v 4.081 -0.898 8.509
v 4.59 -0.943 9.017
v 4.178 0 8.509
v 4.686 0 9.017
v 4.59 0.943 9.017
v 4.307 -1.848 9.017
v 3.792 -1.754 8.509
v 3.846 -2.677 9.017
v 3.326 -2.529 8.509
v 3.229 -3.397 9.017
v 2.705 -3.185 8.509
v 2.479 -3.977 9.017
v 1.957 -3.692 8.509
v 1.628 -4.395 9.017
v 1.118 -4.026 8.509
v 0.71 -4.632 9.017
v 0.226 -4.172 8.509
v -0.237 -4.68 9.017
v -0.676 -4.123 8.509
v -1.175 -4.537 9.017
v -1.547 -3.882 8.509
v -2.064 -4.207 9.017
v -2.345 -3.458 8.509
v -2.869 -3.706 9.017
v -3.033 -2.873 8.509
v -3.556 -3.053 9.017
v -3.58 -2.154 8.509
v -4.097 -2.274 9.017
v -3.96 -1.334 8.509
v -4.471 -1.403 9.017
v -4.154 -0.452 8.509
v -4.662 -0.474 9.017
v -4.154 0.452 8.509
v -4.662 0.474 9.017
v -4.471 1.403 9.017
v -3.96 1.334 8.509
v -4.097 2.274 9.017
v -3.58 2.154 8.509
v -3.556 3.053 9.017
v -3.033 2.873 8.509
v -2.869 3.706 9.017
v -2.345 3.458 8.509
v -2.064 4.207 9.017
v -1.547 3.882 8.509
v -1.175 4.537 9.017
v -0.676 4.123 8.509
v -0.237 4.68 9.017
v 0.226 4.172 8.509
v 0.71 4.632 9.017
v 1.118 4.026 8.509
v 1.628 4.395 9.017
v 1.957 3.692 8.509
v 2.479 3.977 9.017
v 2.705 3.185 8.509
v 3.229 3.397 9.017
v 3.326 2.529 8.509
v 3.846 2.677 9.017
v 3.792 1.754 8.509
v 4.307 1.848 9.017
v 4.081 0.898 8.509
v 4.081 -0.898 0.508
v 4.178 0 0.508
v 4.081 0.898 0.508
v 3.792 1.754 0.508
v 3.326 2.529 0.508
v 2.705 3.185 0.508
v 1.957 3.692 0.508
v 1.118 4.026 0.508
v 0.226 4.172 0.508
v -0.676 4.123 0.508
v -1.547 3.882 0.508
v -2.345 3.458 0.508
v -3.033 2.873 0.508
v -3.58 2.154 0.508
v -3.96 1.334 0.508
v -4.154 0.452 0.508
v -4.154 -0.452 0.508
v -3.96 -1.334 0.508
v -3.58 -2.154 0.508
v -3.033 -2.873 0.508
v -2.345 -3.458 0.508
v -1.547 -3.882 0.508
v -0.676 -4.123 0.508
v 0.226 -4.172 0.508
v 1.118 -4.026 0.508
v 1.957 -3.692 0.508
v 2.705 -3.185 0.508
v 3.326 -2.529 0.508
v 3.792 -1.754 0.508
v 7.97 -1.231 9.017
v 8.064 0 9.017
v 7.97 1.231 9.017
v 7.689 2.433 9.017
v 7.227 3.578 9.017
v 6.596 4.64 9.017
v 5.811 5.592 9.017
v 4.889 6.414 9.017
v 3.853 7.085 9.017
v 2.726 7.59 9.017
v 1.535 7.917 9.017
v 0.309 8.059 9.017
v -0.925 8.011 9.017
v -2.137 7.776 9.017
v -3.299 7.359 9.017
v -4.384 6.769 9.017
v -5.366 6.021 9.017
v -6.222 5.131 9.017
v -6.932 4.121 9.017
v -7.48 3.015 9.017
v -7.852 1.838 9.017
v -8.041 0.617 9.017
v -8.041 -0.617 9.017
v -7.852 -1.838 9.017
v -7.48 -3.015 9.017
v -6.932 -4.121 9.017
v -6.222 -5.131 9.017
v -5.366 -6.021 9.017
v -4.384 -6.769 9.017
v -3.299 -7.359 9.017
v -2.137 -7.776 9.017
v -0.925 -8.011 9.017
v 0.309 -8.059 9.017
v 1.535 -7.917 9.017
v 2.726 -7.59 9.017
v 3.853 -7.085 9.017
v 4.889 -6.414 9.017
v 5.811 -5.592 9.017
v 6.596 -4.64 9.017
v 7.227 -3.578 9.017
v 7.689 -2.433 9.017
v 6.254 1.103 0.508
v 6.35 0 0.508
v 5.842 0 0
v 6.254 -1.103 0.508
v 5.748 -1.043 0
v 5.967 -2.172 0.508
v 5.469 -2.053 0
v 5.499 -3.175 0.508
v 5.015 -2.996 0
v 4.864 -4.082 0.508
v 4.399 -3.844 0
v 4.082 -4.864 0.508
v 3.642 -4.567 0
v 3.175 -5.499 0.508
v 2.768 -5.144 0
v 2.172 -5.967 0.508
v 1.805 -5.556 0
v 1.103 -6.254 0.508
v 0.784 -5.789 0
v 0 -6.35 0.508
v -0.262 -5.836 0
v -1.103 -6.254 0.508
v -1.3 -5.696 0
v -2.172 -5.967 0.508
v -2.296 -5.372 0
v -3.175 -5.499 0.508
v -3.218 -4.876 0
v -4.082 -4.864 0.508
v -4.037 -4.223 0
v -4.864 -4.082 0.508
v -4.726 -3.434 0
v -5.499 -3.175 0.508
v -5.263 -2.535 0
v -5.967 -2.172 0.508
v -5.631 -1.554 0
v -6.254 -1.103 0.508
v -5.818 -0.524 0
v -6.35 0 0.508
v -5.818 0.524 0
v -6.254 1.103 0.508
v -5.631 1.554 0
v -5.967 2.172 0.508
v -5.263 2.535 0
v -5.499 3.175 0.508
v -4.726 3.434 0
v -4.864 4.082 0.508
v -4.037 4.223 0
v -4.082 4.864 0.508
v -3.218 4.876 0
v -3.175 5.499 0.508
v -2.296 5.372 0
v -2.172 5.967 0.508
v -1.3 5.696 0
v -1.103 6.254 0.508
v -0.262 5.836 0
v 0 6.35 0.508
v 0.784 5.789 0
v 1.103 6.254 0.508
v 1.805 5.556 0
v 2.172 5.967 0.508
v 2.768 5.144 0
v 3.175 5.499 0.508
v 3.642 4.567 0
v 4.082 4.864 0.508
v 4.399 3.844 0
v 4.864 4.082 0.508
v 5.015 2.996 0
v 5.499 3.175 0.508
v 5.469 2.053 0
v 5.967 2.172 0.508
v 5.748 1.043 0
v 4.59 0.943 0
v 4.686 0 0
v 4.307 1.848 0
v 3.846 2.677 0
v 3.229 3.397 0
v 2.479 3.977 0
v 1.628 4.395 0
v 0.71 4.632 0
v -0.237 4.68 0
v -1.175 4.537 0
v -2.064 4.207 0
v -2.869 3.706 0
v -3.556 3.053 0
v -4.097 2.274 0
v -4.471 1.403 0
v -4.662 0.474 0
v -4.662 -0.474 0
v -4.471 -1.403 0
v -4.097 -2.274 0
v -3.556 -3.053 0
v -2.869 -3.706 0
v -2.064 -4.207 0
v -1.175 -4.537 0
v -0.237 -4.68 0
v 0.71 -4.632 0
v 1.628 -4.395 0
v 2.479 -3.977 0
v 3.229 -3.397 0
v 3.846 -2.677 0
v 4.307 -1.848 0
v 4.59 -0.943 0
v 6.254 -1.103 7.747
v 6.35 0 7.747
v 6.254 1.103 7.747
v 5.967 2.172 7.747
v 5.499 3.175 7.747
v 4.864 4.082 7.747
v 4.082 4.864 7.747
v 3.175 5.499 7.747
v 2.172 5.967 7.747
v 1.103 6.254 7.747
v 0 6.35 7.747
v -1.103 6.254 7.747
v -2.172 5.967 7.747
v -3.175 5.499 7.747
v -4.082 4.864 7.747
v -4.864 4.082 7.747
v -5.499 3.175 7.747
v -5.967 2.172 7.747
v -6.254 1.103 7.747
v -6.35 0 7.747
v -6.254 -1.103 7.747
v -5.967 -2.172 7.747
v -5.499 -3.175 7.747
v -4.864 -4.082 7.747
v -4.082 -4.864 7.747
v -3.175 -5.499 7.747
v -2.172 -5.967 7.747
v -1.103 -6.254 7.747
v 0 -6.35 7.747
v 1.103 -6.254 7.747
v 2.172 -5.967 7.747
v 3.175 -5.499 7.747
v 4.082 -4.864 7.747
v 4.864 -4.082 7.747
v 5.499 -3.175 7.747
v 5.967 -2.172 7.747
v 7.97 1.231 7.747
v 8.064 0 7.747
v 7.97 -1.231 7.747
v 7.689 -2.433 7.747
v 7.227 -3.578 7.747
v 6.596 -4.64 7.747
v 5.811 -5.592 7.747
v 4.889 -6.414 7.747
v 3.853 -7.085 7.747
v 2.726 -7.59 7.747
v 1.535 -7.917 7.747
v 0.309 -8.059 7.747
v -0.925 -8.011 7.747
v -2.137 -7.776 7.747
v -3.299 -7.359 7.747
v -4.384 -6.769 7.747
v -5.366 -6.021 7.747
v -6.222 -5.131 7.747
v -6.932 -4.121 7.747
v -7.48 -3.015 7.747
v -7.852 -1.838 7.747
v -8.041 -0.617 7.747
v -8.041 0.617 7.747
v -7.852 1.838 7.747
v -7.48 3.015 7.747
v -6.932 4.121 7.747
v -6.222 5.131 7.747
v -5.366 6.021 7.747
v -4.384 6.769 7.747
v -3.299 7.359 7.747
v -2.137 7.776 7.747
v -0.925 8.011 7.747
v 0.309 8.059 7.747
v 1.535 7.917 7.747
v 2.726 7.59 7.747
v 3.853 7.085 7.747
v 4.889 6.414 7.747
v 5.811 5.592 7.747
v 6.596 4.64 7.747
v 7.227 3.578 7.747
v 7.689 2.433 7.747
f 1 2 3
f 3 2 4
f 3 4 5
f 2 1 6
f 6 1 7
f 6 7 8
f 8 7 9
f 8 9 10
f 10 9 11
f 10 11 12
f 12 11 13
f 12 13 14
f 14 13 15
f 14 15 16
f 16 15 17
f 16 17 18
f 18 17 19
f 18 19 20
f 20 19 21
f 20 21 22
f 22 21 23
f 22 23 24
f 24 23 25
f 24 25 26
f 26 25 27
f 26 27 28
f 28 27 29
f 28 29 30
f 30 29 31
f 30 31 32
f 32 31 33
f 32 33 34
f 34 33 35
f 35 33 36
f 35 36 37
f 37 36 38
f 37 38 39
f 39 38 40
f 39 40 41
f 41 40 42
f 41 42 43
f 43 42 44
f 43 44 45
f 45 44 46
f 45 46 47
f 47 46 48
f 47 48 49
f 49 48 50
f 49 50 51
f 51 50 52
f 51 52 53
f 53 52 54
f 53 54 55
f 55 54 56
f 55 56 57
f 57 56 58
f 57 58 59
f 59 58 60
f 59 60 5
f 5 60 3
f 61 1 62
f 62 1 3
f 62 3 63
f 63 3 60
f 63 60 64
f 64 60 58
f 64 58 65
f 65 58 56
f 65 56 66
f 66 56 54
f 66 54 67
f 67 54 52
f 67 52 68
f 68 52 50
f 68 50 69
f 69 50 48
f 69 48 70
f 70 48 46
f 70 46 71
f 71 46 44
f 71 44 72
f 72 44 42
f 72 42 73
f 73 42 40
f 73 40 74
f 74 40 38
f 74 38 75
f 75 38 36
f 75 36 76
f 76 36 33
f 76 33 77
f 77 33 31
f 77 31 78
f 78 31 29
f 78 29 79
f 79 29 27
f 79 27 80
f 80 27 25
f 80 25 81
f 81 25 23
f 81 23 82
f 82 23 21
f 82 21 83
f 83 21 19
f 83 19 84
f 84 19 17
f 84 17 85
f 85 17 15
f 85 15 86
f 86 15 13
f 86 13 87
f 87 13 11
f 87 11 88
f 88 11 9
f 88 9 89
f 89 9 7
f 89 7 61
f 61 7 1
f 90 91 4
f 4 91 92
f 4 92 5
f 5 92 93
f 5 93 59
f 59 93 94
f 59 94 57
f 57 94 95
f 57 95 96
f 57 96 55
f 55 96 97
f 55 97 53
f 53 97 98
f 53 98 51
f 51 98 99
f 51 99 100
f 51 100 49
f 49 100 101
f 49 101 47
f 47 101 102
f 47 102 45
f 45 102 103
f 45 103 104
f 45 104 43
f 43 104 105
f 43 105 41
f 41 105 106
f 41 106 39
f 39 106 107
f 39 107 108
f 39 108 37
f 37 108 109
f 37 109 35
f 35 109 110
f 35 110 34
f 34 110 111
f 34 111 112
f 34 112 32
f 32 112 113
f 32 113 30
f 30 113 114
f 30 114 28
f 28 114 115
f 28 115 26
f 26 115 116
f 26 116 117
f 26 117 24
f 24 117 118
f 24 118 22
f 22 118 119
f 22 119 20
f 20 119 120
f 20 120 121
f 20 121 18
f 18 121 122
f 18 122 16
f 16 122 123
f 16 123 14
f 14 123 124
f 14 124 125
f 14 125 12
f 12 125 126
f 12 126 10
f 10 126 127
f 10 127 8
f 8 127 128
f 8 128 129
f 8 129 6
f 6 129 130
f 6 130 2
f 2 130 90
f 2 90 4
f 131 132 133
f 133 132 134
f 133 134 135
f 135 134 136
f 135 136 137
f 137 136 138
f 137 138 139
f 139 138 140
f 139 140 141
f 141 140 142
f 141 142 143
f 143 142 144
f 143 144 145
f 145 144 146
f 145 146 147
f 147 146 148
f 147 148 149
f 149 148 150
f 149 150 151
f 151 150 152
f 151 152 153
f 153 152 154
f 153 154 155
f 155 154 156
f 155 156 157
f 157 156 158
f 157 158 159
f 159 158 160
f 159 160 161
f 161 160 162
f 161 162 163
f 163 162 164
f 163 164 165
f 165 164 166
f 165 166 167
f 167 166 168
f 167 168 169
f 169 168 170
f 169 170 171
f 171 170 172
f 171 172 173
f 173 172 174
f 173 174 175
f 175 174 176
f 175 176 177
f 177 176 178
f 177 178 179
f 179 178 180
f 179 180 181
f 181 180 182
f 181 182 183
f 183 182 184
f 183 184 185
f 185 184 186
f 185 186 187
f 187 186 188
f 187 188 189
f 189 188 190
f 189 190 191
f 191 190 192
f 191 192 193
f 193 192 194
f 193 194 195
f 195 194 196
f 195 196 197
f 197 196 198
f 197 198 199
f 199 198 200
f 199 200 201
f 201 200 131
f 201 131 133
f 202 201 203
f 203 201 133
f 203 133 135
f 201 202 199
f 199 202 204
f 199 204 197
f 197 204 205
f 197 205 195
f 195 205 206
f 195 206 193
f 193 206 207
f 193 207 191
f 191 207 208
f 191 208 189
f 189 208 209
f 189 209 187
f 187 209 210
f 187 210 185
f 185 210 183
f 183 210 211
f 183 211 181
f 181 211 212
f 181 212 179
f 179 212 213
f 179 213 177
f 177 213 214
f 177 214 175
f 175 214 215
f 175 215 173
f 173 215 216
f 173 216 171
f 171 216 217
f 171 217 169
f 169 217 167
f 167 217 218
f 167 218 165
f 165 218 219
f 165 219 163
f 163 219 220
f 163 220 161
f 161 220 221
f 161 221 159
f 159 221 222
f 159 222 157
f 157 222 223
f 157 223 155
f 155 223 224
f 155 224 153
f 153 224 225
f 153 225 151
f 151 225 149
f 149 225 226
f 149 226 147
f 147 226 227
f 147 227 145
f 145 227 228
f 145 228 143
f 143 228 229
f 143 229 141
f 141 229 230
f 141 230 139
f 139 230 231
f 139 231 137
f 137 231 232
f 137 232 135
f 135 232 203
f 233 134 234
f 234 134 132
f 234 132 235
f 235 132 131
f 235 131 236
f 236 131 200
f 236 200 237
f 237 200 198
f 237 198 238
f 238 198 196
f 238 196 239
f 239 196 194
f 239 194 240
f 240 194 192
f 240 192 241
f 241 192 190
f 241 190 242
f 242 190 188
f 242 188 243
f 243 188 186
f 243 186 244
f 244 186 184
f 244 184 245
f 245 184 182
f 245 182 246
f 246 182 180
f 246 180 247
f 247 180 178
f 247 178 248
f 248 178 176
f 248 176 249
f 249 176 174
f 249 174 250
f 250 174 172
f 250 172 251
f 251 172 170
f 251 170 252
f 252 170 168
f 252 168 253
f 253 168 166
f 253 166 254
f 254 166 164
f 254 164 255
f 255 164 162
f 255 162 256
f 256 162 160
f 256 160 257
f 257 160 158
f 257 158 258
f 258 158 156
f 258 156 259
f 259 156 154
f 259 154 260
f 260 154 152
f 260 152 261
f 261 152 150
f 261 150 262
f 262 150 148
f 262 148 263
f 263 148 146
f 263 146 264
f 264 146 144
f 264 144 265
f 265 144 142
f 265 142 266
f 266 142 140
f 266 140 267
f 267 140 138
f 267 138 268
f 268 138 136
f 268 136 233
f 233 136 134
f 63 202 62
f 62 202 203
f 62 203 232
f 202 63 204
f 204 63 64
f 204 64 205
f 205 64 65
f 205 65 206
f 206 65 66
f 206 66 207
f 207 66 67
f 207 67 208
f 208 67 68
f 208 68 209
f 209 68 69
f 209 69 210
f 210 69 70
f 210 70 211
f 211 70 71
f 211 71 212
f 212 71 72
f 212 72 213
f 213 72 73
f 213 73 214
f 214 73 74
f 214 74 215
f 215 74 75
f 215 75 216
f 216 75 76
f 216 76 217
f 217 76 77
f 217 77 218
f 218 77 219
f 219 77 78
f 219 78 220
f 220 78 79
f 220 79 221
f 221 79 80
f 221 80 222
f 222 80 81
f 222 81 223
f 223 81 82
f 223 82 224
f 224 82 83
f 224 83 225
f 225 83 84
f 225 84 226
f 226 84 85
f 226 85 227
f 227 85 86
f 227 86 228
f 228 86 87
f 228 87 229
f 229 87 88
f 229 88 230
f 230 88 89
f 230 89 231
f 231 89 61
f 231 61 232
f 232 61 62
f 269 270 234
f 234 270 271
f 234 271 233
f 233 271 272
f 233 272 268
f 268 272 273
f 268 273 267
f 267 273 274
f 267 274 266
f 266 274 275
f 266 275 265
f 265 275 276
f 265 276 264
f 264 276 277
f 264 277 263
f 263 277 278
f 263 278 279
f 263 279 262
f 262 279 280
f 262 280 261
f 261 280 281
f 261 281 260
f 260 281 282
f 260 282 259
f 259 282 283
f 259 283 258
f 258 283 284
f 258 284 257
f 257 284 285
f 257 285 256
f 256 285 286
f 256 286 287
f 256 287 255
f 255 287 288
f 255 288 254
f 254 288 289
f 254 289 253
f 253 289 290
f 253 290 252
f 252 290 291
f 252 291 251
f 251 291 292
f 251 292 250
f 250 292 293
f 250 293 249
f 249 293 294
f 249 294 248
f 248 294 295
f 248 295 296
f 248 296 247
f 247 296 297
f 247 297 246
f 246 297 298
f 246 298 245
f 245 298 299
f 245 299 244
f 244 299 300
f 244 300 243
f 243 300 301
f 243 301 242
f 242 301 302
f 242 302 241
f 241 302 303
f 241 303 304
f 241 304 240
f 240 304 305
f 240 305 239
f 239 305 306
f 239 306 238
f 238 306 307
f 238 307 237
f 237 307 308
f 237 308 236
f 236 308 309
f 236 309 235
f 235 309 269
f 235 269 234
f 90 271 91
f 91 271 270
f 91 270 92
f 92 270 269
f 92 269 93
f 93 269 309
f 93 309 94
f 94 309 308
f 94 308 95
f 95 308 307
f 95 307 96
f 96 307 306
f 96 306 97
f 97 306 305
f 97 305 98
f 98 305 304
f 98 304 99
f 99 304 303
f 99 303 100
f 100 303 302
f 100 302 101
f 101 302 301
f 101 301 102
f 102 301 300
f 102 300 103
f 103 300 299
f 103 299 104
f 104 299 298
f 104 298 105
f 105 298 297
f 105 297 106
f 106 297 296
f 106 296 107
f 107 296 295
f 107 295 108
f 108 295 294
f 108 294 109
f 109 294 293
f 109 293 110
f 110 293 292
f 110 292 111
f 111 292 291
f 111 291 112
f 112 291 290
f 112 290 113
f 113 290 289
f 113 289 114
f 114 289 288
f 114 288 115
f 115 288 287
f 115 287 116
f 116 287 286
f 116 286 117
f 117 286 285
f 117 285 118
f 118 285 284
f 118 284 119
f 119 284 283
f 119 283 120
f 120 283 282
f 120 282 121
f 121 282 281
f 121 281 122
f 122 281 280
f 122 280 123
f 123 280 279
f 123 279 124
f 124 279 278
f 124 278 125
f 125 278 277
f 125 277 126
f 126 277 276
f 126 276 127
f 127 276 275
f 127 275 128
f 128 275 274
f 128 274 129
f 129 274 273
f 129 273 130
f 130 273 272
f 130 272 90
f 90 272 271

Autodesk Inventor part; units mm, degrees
ref_plane "YZ Plane" through (0, 0, 0) normal (1, 0, 0) x (0, 1, 0)
ref_plane "XZ Plane" through (0, 0, 0) normal (0, 1, 0) x (-1, 0, 0)
ref_plane "XY Plane" through (0, 0, 0) normal (0, 0, 1) x (1, 0, 0)
sketch "Sketch1" plane through (0, 0, 0) normal (0, 0, 1) x (1, 0, 0)
  point P0 (0, 0)
sketch "Sketch2" plane through (0, 0, 0) normal (0, 0, 1) x (1, 0, 0)
  circle A0 centre (0, 0) radius 6.35
  circle A1 centre (0, 0) radius 4.1783
  dimension "d0" = 8.3566
  dimension "d1" = 12.7
extrude "Extrusion1" add sketch "Sketch2" along normal blind 7.747
sketch "Sketch3" plane through (0, 0, 7.747) normal (0, 0, 1) x (1, 0, 0)
  circle A0 centre (0, 0) radius 4.1783 projected
  circle A1 centre (0, 0) radius 8.0645
  dimension "d4" = 16.129
extrude "Extrusion2" add sketch "Sketch3" along normal blind 1.27
chamfer "Chamfer1" distance 0.508 angle 45 3 edges at (-4.1783, 0, 0) (-6.35, 0, 0) (-4.1783, 0, 9.017)
properties part number "robotics"
